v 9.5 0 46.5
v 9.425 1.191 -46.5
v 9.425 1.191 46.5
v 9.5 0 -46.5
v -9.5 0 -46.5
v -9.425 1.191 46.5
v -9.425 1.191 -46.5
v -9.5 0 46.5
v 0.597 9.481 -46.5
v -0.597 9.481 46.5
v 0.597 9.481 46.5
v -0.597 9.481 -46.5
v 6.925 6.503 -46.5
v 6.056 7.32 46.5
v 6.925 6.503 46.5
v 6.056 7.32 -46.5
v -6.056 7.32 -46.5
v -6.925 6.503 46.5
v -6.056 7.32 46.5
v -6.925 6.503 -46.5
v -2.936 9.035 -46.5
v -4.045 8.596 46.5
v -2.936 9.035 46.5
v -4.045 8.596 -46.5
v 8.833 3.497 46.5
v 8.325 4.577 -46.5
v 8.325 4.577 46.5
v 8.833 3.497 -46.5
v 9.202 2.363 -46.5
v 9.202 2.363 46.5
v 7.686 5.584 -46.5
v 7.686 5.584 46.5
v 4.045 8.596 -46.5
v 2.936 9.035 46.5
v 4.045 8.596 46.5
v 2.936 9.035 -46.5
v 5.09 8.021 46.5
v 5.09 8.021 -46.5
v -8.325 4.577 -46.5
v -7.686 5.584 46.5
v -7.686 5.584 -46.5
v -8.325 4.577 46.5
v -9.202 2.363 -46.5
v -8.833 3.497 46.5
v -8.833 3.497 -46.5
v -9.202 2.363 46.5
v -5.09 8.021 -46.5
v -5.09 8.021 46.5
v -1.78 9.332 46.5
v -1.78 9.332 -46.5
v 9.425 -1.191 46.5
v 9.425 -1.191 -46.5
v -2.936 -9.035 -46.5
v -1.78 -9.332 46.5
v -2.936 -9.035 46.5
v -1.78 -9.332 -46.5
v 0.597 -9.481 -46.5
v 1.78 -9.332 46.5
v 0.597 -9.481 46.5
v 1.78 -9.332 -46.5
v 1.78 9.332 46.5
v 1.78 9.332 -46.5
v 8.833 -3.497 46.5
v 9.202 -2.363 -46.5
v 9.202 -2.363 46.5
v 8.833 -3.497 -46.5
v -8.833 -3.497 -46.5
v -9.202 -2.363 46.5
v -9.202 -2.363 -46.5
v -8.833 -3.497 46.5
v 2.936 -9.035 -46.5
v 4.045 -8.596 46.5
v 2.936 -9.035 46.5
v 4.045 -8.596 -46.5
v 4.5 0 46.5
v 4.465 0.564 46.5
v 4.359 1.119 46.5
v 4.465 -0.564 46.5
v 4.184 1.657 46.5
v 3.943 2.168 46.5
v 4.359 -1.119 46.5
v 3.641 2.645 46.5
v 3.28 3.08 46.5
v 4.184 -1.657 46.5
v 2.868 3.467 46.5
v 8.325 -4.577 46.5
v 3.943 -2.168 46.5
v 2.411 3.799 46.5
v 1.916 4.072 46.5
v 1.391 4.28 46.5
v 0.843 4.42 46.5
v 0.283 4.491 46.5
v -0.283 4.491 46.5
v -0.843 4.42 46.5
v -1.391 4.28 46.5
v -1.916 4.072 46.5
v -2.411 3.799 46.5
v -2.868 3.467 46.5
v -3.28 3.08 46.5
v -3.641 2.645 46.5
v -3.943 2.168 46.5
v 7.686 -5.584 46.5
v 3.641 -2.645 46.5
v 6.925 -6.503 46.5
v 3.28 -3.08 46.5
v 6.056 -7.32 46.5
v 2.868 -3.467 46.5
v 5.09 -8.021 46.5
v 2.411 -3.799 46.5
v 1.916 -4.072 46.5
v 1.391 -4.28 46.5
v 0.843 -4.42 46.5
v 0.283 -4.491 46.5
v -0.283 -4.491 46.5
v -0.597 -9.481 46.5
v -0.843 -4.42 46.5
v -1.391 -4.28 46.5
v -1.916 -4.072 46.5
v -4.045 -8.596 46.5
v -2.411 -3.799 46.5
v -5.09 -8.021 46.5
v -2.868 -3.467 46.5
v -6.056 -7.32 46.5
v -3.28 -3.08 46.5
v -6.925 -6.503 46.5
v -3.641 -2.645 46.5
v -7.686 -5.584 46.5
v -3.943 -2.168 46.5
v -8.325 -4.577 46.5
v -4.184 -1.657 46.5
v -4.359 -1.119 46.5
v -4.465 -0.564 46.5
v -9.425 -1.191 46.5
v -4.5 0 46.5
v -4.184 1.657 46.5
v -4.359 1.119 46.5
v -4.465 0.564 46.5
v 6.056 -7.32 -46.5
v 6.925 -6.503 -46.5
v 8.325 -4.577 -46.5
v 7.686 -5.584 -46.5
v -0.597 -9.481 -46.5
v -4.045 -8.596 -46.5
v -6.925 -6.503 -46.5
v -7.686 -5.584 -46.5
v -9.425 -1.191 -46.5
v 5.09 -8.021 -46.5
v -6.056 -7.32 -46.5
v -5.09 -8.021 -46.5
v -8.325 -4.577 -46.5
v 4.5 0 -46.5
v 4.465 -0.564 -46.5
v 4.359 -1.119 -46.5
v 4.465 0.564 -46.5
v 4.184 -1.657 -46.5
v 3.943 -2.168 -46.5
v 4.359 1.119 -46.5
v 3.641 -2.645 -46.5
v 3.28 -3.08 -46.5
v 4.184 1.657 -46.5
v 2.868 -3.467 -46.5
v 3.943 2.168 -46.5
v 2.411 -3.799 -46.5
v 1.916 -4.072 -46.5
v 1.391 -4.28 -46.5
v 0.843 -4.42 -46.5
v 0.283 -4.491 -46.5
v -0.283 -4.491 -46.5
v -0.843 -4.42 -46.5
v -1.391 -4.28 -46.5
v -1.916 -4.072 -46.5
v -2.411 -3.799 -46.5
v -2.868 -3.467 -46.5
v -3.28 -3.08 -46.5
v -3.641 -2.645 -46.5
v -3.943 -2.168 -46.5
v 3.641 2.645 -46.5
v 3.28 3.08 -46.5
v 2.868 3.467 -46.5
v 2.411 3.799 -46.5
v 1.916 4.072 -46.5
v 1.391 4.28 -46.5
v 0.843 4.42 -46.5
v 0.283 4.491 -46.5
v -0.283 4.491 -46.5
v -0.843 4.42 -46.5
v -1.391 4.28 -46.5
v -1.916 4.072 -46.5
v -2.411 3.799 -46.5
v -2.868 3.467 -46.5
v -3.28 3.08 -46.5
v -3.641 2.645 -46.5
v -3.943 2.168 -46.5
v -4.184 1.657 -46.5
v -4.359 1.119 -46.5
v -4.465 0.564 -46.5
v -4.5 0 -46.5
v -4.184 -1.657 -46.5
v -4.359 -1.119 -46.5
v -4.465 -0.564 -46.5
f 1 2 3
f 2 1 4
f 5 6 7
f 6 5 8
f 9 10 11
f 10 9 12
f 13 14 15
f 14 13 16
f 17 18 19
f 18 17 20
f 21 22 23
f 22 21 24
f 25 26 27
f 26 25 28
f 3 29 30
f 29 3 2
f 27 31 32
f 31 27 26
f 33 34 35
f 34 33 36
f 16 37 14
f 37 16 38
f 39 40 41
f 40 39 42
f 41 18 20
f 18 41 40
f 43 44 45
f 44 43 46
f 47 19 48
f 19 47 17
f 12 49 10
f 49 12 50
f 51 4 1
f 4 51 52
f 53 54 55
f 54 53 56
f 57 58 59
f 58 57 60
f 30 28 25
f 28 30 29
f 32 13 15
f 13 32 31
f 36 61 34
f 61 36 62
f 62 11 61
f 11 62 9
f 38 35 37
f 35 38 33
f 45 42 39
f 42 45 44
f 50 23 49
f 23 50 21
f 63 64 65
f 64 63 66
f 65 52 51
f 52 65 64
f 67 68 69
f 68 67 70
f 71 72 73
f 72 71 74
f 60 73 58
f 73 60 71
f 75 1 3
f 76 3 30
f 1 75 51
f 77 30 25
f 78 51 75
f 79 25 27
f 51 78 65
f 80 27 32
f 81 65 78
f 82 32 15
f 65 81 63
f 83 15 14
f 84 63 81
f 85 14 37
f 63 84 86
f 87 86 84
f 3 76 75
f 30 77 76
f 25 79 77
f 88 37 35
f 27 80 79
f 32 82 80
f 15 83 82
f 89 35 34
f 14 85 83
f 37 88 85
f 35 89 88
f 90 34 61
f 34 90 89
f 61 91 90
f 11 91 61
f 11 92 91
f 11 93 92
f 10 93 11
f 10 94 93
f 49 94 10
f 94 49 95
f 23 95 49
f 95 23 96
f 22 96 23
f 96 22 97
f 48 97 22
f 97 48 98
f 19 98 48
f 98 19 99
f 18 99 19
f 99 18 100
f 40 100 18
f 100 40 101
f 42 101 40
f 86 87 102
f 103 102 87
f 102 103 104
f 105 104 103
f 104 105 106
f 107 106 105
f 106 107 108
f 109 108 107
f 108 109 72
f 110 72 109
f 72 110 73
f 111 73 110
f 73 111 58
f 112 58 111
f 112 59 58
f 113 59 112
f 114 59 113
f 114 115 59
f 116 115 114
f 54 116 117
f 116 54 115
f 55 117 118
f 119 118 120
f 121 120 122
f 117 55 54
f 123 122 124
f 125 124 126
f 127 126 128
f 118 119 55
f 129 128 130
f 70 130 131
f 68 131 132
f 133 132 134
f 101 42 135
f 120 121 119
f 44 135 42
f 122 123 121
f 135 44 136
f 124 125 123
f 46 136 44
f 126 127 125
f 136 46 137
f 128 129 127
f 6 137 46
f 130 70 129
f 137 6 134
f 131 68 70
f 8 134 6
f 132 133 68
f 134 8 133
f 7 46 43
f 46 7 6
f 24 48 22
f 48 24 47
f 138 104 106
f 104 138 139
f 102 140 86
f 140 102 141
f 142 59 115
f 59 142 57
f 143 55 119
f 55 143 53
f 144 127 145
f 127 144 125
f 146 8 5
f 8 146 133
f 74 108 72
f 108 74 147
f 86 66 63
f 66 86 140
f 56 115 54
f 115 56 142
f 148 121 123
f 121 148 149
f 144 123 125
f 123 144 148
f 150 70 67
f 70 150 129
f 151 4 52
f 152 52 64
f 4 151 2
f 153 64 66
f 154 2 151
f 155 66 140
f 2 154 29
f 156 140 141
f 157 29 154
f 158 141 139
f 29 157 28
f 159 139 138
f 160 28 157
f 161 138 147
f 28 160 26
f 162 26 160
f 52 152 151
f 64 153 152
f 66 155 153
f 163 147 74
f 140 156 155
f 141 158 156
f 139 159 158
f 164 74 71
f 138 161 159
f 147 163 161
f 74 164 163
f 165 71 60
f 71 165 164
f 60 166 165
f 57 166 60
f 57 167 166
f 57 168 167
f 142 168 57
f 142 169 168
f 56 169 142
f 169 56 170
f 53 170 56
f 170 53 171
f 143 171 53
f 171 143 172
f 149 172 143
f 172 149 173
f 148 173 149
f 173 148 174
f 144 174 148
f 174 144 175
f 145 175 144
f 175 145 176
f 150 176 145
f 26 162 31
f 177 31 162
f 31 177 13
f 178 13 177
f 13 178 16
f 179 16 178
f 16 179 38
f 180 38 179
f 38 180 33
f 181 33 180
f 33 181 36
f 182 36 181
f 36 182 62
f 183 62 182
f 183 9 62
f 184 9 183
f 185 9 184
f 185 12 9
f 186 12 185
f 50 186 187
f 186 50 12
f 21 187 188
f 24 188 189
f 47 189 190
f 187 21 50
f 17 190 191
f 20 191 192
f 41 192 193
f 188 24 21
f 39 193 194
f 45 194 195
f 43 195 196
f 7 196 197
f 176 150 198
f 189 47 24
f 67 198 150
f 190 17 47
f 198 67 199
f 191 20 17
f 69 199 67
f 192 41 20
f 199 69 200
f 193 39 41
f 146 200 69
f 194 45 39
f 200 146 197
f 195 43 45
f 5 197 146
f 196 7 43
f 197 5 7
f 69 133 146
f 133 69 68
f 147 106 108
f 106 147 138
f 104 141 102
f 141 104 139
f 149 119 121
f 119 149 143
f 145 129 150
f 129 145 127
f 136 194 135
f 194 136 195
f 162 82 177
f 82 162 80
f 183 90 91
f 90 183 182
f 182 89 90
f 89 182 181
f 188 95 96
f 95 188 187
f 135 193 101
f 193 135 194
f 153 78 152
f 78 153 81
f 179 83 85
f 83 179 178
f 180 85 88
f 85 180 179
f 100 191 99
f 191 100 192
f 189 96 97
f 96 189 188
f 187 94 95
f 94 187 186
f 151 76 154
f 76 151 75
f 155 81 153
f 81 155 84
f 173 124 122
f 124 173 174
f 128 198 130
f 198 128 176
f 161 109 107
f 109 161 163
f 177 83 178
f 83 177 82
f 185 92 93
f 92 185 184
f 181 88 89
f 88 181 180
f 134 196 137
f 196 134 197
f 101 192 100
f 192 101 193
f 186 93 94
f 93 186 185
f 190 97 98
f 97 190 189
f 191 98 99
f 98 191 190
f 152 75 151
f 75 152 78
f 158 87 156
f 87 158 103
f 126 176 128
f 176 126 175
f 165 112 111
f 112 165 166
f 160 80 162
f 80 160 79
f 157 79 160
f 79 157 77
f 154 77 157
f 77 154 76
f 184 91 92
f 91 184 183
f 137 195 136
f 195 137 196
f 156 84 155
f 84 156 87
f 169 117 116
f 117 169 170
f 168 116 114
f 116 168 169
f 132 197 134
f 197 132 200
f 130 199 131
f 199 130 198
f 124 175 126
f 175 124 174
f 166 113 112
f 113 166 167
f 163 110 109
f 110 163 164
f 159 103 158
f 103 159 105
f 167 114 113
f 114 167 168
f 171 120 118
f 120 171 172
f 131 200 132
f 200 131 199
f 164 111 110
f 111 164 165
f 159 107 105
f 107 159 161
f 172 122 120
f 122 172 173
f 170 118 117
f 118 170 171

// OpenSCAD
$fn = 50;


difference() {
	union() {
		translate(v = [0, 0, -46.5000000000]) {
			cylinder(h = 93, r = 9.5000000000);
		}
	}
	union() {
		translate(v = [0, 0, -100.0000000000]) {
			cylinder(h = 200, r = 4.5000000000);
		}
	}
}
